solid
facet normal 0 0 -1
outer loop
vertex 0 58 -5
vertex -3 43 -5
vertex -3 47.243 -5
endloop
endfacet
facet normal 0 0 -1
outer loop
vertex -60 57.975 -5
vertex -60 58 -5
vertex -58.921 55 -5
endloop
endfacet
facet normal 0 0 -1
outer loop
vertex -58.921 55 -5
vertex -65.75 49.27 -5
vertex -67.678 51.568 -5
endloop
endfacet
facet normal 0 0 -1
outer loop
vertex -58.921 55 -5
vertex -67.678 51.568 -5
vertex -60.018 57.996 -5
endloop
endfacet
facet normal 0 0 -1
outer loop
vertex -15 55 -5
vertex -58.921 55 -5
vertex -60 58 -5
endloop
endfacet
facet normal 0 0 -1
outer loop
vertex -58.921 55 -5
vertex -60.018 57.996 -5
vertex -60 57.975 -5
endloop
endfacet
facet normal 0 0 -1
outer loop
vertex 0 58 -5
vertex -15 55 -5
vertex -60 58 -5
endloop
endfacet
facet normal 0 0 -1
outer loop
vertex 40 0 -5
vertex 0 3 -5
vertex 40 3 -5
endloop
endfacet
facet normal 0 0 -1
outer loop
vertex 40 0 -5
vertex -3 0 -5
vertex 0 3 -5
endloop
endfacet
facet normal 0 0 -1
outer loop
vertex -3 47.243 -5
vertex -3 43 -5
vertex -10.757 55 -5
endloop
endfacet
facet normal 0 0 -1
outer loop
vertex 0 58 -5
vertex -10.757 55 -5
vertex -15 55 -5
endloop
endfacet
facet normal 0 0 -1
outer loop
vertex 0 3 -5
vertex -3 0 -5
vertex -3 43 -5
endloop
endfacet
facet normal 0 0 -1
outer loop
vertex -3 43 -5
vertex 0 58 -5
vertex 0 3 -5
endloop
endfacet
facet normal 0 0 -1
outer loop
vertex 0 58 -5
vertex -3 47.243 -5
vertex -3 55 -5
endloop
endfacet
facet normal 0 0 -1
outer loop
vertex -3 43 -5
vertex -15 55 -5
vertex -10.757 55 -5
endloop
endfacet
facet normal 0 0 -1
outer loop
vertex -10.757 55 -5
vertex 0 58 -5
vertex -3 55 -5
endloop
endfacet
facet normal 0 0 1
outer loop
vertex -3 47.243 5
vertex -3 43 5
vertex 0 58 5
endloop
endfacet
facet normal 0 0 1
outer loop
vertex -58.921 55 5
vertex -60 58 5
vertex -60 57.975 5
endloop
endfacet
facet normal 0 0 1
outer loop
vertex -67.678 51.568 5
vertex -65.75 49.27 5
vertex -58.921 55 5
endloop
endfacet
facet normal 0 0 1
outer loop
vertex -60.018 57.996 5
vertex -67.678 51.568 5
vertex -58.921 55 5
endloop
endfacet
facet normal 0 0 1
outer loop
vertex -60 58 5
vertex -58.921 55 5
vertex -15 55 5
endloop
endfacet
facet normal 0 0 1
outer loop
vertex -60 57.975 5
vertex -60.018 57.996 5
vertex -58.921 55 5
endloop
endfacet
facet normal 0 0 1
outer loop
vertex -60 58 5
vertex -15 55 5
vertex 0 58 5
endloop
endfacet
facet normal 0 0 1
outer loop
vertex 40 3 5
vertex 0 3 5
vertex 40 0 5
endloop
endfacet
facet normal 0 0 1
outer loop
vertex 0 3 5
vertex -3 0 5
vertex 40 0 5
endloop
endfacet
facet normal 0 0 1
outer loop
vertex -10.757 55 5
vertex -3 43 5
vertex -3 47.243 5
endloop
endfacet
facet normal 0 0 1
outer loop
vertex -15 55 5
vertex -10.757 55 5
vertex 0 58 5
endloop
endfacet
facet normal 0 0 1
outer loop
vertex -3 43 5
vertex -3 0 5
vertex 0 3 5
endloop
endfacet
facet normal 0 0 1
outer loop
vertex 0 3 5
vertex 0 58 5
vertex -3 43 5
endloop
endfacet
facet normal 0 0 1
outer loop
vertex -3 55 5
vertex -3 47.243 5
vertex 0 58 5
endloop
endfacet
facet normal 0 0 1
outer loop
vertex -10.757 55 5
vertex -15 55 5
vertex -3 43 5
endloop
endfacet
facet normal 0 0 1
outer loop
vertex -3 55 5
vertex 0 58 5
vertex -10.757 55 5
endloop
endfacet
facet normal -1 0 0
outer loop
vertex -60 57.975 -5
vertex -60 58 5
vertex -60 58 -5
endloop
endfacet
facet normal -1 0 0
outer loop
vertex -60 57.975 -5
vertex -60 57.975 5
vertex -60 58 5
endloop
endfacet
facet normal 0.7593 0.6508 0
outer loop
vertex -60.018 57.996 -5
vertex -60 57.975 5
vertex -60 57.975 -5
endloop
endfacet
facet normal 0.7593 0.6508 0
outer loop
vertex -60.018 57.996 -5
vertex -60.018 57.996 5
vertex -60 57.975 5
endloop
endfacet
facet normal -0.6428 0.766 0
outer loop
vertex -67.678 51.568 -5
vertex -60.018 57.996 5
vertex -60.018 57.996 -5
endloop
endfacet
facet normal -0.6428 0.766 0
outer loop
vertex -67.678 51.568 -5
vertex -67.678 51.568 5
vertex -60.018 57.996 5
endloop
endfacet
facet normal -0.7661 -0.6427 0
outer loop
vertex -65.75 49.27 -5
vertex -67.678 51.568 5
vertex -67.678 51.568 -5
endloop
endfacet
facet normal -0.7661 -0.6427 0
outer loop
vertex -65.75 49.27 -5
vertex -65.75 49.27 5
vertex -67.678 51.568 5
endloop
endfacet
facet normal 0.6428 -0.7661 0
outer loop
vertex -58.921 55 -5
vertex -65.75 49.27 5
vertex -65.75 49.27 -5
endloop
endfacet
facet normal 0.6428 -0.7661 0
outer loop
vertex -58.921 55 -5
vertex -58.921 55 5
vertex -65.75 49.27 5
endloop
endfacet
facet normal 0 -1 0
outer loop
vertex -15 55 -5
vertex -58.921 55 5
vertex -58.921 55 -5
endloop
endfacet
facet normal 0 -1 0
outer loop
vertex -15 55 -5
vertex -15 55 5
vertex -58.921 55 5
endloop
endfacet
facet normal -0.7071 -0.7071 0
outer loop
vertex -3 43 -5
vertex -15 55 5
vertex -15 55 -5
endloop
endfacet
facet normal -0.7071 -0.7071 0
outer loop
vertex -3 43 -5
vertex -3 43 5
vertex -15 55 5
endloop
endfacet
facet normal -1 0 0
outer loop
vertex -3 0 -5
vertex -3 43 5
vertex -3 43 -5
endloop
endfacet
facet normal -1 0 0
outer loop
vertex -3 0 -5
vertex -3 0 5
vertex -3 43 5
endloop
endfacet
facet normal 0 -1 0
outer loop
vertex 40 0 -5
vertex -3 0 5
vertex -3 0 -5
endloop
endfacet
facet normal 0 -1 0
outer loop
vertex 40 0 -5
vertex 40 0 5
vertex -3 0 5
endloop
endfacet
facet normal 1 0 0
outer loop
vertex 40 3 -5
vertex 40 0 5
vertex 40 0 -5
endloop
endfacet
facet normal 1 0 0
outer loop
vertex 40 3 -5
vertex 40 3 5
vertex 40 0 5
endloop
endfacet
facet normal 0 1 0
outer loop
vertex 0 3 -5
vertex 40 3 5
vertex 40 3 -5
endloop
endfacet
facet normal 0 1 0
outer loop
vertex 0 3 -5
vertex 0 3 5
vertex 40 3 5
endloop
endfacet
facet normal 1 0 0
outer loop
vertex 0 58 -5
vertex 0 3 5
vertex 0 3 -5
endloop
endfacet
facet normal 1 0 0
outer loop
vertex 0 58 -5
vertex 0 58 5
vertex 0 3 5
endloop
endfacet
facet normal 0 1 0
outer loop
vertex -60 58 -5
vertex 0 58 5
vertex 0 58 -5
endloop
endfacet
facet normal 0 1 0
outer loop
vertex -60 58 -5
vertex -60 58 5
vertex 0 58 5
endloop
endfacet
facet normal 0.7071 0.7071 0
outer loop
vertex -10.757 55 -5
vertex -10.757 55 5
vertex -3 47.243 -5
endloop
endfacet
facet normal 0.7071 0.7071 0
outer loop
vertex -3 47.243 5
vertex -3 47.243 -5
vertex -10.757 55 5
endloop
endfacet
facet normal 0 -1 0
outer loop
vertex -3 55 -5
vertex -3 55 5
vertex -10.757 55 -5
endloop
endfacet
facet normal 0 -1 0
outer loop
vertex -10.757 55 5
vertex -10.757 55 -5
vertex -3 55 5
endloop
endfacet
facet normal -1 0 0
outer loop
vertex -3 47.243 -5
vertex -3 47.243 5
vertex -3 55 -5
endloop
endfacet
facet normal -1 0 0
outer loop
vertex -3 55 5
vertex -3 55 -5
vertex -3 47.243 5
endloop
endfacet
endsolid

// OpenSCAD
WALLS=3;
WIDTH=10;

linear_extrude(height=WIDTH, center=true, twist=0)
union() {
  square([40,WALLS]);
  translate([0, 0, 0])
    rotate([0, 0, 90])
    square([55,WALLS]);
  translate([-60, 55, 0])
    square([60,WALLS]);
  translate([-65.75, 49.27, 0])
    rotate([0, 0, 40])
      square([10,WALLS]);
  translate([-15.5, 55.5, 0])
    rotate([0, 0, -45])
      square([18,WALLS]);
}
